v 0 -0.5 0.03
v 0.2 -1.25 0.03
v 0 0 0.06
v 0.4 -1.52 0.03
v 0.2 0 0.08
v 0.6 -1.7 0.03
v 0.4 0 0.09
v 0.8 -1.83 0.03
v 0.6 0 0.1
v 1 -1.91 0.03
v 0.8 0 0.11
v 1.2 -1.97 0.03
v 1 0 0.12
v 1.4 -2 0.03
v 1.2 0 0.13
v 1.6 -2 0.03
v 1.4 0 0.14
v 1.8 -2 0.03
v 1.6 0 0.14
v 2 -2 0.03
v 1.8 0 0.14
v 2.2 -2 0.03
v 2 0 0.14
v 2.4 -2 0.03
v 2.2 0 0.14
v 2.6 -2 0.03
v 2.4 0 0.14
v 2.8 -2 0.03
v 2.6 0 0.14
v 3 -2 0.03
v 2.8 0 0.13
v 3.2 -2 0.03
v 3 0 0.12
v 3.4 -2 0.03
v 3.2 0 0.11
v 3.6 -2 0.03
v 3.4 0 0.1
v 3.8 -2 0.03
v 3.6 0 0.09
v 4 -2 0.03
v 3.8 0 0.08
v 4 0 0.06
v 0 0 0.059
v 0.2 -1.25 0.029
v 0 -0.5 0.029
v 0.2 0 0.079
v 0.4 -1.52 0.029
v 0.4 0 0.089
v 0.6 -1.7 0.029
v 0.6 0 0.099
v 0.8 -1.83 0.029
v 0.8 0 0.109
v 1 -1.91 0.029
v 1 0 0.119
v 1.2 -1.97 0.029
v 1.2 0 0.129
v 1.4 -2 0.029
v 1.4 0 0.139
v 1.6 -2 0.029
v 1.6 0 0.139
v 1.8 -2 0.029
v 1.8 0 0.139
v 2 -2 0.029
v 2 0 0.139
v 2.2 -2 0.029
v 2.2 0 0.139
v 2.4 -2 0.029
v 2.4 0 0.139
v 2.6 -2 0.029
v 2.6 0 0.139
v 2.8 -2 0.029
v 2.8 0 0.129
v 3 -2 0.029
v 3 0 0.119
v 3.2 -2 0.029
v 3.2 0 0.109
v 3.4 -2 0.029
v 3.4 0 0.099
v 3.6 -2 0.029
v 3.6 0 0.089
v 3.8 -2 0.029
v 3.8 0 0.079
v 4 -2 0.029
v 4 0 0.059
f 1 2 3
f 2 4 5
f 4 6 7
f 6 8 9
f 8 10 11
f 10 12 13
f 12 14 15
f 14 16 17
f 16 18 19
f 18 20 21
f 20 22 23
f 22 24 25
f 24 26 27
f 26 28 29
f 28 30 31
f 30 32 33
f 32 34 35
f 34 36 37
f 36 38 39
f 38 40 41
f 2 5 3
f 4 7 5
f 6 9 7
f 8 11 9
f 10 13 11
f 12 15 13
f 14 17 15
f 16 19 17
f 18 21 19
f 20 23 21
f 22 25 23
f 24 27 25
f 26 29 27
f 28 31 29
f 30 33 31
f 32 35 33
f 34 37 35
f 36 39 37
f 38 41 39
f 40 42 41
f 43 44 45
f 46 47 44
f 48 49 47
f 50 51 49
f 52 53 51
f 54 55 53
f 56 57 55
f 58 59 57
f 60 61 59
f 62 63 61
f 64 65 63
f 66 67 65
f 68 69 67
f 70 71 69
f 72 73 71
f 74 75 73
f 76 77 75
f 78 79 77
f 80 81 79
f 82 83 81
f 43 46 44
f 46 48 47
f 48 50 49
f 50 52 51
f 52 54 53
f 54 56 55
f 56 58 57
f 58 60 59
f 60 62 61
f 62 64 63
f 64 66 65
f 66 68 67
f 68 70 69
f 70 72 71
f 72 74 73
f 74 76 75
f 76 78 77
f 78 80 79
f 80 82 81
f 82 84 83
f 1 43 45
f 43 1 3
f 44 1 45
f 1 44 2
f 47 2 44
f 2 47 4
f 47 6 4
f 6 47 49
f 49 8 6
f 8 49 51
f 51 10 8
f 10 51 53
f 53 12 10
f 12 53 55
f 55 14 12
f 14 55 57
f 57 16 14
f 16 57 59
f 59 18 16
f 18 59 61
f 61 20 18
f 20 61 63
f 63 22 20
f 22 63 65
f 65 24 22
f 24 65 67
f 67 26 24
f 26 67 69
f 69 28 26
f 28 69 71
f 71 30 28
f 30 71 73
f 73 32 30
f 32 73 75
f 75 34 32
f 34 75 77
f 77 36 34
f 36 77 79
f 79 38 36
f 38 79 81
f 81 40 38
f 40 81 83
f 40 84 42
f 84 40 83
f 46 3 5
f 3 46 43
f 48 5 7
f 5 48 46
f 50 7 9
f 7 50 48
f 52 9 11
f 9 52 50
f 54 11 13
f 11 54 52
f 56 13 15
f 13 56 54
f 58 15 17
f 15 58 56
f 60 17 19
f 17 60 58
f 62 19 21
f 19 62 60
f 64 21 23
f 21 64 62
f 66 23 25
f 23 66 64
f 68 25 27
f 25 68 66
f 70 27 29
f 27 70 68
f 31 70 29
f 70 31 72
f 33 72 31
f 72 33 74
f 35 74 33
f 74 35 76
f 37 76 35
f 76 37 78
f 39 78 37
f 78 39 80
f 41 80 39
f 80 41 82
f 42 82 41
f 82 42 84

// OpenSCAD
// file: MMlib/colors.scad
// colors.scad
// Credit: David Powell, OpenSCAN Forum



//group ABS_<colorname>
//	discription  common 3d printer ABS filament colors
// actual colours may need some tweaking

ABS_Nature =[0.8,0.8,0.8,0.8];
ABS_White =[0.9,0.9,0.9,1];
ABS_Black =[0.1,0.1,0.1,1];
ABS_Red = [0.7,0,0,1];
ABS_Green = [0,0.7,0,1];
ABS_Blue = [0,0,0.7,1];
ABS_Orange =[0.8,0.4,0,1];
ABS_Purple =[0.7,0,0.7,1];
ABS_Brown =[0.6,0.2,0.2,1];
ABS_Glow_Blue =[0,0,.99,1];
ABS_Flurescence_Green =[0,1,0,1];
ABS_Flurescence_Yellow = [0.9,0.9,0,1];

//group PLA_<colorname>
//	discription  common 3d printer PLA filament colors
// actual colours may need some tweaking

PLA_Nature =[0.8,0.8,0.8,0.8];
PLA_White =[0.9,0.9,0.9,1];
PLA_Black =[0.1,0.1,0.1,1];
PLA_Red = [0.7,0,0,1];
PLA_Green = [0,0.7,0,1];
PLA_Blue = [0,0,0.7,1];
PLA_Orange =[0.8,0.4,0,1];
PLA_Purple =[0.7,0,0.7,1];
PLA_Brown =[0.6,0.2,0.2,1];
PLA_Glow_Blue =[0,0,.99,1];
PLA_Flurescence_Green =[0,1,0,1];
PLA_Flurescence_Yellow = [0.9,0.9,0,1];

//group ANODIZED_<colorname>
//	discription  common aluminium anodized colors
// these don't seem to follow normal color tables as the process
// produces a color change difference to the named color
// dew to base metal
// actual colours may need some tweaking

ANODIZED_Red =[0.7,0,0,1];
ANODIZED_Gold =[0.8,0.8,0.0,1];
ANODIZED_Black =[0.1,0.1,0.1,1];
ANODIZED_Blue =[0,0,0.7,1];
ANODIZED_Green =[0,0.5,0,1];
ANODIZED_Gray =[0.4,0.4,0.4,1];
ANODIZED_Dark_Blue =[0,0.2,0.6,1];
ANODIZED_Lime_Green =[0,0.8,0,1];
ANODIZED_Purple =[0.5,0,0.7,1];		//more blue than purple
ANODIZED_Light_Blue =[0.4,0.4,1,1];
ANODIZED_Pink =[0.7,0,0.7,1];		//more purlpe than pink
ANODIZED_Orange =[0.9,0.5,0,1];
ANODIZED_Scandia_Gold =[0.9,0.6,0.3,1];
ANODIZED_Copper =[0.7,0.5,0,1];		//more brown than copper
ANODIZED_Clear =[0.7,0.7,0.9,1];	//natural aluminium color
ANODIZED_Light_Bronze =[0.4,0.4,0.3,1]; //more silver than bronze
ANODIZED_Gold_Nickel =[0.8,0.8,0.6,1];
ANODIZED_Brush_Nickel =[0.8,0.8,0.7,1];

//group METAL_<typename>
//	discription common metal colors
// colors need tweaking

METAL_Aluminium = [0.7,0.7,0.8,1];
METAL_Brass = [0.88,0.78,0.5,1];
METAL_Copper = [0.9,0.6,0.5,1];
METAL_Steel = [0.9,0.9,0.8,1];
METAL_Stainless = [0.8,0.8,0.7,1];
METAL_Titanium = [0.7,0.7,0.6,1];
METAL_Bronze = [0.9,0.4,0.4,1];
METAL_Gold = [0.9,0.9,0.0,1];
METAL_Silver = [0.8,0.8,0.8,1];
METAL_Iron = [0.6,0.6,0.6,1];

// group WOOD_<typename>
//	discription common wood colors
// probabaly wrong

WOOD_Oak = [0.4,0.2,0.2,1];
WOOD_Birch = [0.8,0.8,0.4,1];
WOOD_Red = [0.7,0.3,0.3,1];
WOOD_pine = [0.8,0.8,0.4,1];
WOOD_Beach = [0.8,0.6,0.3,1];
WOOD_Spruce = [0.8,0.8,0.7,1];
WOOD_Balsa = [0.95,0.86,0.73];

// group GLASS_<color>
//	discription common glass colors
// needs tweaking

GLASS_Clear = [0.8,0.8,0.8,0.2];
GLASS_Red = [0.8,0,0,0.4];
GLASS_Green = [0,0.8,0,.4];
GLASS_Blue = [0,0,0.8,.4];
GLASS_Brown = [0.5,0.3,0.1,.4];

CONCRETE = [210/255, 209/255, 205/255];
// file: cover_points.scad
g_pts = [
    [
        [0.00, 0.00, 0.06],[0.00, -0.50, 0.03]
    ],
    [
        [0.20, -0.00, 0.08],[0.20, -1.25, 0.03]
    ],
    [
        [0.40, -0.00, 0.09],[0.40, -1.52, 0.03]
    ],
    [
        [0.60, -0.00, 0.10],[0.60, -1.70, 0.03]
    ],
    [
        [0.80, -0.00, 0.11],[0.80, -1.83, 0.03]
    ],
    [
        [1.00, -0.00, 0.12],[1.00, -1.91, 0.03]
    ],
    [
        [1.20, -0.00, 0.13],[1.20, -1.97, 0.03]
    ],
    [
        [1.40, -0.00, 0.14],[1.40, -2.00, 0.03]
    ],
    [
        [1.60, -0.00, 0.14],[1.60, -2.00, 0.03]
    ],
    [
        [1.80, -0.00, 0.14],[1.80, -2.00, 0.03]
    ],
    [
        [2.00, -0.00, 0.14],[2.00, -2.00, 0.03]
    ],
    [
        [2.20, -0.00, 0.14],[2.20, -2.00, 0.03]
    ],
    [
        [2.40, -0.00, 0.14],[2.40, -2.00, 0.03]
    ],
    [
        [2.60, -0.00, 0.14],[2.60, -2.00, 0.03]
    ],
    [
        [2.80, -0.00, 0.13],[2.80, -2.00, 0.03]
    ],
    [
        [3.00, -0.00, 0.12],[3.00, -2.00, 0.03]
    ],
    [
        [3.20, -0.00, 0.11],[3.20, -2.00, 0.03]
    ],
    [
        [3.40, -0.00, 0.10],[3.40, -2.00, 0.03]
    ],
    [
        [3.60, -0.00, 0.09],[3.60, -2.00, 0.03]
    ],
    [
        [3.80, -0.00, 0.08],[3.80, -2.00, 0.03]
    ],
    [
        [4.00, 0.00, 0.06],[4.00, -2.00, 0.03]
    ]
];
// file: MMlib/covering_generator.scad
module covering_generator(points, thickness) {


    function reverse(lt) = [for(i = len(lt) - 1; i >= 0; i = i - 1) lt[i]];

    rows = len(points);
    columns = len(points[0]);

    yi_range = [0:rows - 2];
    xi_range =  [0:columns - 2];

    function xy_to_index(x, y, columns) = y * columns + x;

    top_pts = [
        for(row_pts = points)
            for(pt = row_pts)
                pt
    ];

    base_pts = [
        for(pt = top_pts)
            [pt[0], pt[1], pt[2] - thickness]
    ];

    leng_pts = len(top_pts);

    top_tri_faces1 =  [
        for(yi = yi_range)
            for(xi = xi_range)
                [
                    xy_to_index(xi, yi, columns),
                    xy_to_index(xi + 1, yi + 1, columns),
                    xy_to_index(xi + 1, yi, columns)
                ]
    ];

    top_tri_faces2 = [
        for(yi = yi_range)
            for(xi = xi_range)
                [
                    xy_to_index(xi, yi, columns),
                    xy_to_index(xi, yi + 1, columns),
                    xy_to_index(xi + 1, yi + 1, columns)
                ]
    ];

    offset_v = [leng_pts, leng_pts, leng_pts];
    base_tri_faces1 = [
        for(face = top_tri_faces1)
            reverse(face) + offset_v
    ];

    base_tri_faces2 = [
        for(face = top_tri_faces2)
            reverse(face) + offset_v
    ];

    side_faces1 = [
        for(xi = xi_range)
            let(
                idx1 = xy_to_index(xi, 0, columns),
                idx2 = xy_to_index(xi + 1, 0, columns)
            )
            [
                idx1,
                idx2,
                idx2 + leng_pts,
                idx1 + leng_pts
            ]
    ];

    side_faces2 = [
        for(yi = yi_range)
            let(
                xi = columns - 1,
                idx1 = xy_to_index(xi, yi, columns),
                idx2 = xy_to_index(xi, yi + 1, columns)
            )
            [
                idx1,
                idx2,
                idx2 + leng_pts,
                idx1 + leng_pts
            ]
    ];

    side_faces3 = [
        for(xi = xi_range)
            let(
                yi = rows - 1,
                idx1 = xy_to_index(xi, yi, columns),
                idx2 = xy_to_index(xi + 1, yi, columns)
            )
            [
                idx2,
                idx1,
                idx1 + leng_pts,
                idx2 + leng_pts
            ]
    ];

    side_faces4 = [
        for(yi = yi_range)
            let(
                idx1 = xy_to_index(0, yi, columns),
                idx2 = xy_to_index(0, yi + 1, columns)
            )
            [
                idx2,
                idx1,
                idx1 + leng_pts,
                idx2 + leng_pts
            ]
    ];

    pts = concat(top_pts, base_pts);
    face_idxs = concat(
            top_tri_faces1, top_tri_faces2,
            base_tri_faces1, base_tri_faces2,
            side_faces1,
            side_faces2,
            side_faces3,
            side_faces4
        );

    polyhedron(
        points = pts,
        faces = face_idxs
    );
}
// main file
use <MMlib/covering_generator.scad>;
include <cover_points.scad>
include <MMlib/colors.scad>


thickness = 0.001;

module covering() {
    color(GLASS_Blue)
      covering_generator(g_pts, thickness);
}

covering();
